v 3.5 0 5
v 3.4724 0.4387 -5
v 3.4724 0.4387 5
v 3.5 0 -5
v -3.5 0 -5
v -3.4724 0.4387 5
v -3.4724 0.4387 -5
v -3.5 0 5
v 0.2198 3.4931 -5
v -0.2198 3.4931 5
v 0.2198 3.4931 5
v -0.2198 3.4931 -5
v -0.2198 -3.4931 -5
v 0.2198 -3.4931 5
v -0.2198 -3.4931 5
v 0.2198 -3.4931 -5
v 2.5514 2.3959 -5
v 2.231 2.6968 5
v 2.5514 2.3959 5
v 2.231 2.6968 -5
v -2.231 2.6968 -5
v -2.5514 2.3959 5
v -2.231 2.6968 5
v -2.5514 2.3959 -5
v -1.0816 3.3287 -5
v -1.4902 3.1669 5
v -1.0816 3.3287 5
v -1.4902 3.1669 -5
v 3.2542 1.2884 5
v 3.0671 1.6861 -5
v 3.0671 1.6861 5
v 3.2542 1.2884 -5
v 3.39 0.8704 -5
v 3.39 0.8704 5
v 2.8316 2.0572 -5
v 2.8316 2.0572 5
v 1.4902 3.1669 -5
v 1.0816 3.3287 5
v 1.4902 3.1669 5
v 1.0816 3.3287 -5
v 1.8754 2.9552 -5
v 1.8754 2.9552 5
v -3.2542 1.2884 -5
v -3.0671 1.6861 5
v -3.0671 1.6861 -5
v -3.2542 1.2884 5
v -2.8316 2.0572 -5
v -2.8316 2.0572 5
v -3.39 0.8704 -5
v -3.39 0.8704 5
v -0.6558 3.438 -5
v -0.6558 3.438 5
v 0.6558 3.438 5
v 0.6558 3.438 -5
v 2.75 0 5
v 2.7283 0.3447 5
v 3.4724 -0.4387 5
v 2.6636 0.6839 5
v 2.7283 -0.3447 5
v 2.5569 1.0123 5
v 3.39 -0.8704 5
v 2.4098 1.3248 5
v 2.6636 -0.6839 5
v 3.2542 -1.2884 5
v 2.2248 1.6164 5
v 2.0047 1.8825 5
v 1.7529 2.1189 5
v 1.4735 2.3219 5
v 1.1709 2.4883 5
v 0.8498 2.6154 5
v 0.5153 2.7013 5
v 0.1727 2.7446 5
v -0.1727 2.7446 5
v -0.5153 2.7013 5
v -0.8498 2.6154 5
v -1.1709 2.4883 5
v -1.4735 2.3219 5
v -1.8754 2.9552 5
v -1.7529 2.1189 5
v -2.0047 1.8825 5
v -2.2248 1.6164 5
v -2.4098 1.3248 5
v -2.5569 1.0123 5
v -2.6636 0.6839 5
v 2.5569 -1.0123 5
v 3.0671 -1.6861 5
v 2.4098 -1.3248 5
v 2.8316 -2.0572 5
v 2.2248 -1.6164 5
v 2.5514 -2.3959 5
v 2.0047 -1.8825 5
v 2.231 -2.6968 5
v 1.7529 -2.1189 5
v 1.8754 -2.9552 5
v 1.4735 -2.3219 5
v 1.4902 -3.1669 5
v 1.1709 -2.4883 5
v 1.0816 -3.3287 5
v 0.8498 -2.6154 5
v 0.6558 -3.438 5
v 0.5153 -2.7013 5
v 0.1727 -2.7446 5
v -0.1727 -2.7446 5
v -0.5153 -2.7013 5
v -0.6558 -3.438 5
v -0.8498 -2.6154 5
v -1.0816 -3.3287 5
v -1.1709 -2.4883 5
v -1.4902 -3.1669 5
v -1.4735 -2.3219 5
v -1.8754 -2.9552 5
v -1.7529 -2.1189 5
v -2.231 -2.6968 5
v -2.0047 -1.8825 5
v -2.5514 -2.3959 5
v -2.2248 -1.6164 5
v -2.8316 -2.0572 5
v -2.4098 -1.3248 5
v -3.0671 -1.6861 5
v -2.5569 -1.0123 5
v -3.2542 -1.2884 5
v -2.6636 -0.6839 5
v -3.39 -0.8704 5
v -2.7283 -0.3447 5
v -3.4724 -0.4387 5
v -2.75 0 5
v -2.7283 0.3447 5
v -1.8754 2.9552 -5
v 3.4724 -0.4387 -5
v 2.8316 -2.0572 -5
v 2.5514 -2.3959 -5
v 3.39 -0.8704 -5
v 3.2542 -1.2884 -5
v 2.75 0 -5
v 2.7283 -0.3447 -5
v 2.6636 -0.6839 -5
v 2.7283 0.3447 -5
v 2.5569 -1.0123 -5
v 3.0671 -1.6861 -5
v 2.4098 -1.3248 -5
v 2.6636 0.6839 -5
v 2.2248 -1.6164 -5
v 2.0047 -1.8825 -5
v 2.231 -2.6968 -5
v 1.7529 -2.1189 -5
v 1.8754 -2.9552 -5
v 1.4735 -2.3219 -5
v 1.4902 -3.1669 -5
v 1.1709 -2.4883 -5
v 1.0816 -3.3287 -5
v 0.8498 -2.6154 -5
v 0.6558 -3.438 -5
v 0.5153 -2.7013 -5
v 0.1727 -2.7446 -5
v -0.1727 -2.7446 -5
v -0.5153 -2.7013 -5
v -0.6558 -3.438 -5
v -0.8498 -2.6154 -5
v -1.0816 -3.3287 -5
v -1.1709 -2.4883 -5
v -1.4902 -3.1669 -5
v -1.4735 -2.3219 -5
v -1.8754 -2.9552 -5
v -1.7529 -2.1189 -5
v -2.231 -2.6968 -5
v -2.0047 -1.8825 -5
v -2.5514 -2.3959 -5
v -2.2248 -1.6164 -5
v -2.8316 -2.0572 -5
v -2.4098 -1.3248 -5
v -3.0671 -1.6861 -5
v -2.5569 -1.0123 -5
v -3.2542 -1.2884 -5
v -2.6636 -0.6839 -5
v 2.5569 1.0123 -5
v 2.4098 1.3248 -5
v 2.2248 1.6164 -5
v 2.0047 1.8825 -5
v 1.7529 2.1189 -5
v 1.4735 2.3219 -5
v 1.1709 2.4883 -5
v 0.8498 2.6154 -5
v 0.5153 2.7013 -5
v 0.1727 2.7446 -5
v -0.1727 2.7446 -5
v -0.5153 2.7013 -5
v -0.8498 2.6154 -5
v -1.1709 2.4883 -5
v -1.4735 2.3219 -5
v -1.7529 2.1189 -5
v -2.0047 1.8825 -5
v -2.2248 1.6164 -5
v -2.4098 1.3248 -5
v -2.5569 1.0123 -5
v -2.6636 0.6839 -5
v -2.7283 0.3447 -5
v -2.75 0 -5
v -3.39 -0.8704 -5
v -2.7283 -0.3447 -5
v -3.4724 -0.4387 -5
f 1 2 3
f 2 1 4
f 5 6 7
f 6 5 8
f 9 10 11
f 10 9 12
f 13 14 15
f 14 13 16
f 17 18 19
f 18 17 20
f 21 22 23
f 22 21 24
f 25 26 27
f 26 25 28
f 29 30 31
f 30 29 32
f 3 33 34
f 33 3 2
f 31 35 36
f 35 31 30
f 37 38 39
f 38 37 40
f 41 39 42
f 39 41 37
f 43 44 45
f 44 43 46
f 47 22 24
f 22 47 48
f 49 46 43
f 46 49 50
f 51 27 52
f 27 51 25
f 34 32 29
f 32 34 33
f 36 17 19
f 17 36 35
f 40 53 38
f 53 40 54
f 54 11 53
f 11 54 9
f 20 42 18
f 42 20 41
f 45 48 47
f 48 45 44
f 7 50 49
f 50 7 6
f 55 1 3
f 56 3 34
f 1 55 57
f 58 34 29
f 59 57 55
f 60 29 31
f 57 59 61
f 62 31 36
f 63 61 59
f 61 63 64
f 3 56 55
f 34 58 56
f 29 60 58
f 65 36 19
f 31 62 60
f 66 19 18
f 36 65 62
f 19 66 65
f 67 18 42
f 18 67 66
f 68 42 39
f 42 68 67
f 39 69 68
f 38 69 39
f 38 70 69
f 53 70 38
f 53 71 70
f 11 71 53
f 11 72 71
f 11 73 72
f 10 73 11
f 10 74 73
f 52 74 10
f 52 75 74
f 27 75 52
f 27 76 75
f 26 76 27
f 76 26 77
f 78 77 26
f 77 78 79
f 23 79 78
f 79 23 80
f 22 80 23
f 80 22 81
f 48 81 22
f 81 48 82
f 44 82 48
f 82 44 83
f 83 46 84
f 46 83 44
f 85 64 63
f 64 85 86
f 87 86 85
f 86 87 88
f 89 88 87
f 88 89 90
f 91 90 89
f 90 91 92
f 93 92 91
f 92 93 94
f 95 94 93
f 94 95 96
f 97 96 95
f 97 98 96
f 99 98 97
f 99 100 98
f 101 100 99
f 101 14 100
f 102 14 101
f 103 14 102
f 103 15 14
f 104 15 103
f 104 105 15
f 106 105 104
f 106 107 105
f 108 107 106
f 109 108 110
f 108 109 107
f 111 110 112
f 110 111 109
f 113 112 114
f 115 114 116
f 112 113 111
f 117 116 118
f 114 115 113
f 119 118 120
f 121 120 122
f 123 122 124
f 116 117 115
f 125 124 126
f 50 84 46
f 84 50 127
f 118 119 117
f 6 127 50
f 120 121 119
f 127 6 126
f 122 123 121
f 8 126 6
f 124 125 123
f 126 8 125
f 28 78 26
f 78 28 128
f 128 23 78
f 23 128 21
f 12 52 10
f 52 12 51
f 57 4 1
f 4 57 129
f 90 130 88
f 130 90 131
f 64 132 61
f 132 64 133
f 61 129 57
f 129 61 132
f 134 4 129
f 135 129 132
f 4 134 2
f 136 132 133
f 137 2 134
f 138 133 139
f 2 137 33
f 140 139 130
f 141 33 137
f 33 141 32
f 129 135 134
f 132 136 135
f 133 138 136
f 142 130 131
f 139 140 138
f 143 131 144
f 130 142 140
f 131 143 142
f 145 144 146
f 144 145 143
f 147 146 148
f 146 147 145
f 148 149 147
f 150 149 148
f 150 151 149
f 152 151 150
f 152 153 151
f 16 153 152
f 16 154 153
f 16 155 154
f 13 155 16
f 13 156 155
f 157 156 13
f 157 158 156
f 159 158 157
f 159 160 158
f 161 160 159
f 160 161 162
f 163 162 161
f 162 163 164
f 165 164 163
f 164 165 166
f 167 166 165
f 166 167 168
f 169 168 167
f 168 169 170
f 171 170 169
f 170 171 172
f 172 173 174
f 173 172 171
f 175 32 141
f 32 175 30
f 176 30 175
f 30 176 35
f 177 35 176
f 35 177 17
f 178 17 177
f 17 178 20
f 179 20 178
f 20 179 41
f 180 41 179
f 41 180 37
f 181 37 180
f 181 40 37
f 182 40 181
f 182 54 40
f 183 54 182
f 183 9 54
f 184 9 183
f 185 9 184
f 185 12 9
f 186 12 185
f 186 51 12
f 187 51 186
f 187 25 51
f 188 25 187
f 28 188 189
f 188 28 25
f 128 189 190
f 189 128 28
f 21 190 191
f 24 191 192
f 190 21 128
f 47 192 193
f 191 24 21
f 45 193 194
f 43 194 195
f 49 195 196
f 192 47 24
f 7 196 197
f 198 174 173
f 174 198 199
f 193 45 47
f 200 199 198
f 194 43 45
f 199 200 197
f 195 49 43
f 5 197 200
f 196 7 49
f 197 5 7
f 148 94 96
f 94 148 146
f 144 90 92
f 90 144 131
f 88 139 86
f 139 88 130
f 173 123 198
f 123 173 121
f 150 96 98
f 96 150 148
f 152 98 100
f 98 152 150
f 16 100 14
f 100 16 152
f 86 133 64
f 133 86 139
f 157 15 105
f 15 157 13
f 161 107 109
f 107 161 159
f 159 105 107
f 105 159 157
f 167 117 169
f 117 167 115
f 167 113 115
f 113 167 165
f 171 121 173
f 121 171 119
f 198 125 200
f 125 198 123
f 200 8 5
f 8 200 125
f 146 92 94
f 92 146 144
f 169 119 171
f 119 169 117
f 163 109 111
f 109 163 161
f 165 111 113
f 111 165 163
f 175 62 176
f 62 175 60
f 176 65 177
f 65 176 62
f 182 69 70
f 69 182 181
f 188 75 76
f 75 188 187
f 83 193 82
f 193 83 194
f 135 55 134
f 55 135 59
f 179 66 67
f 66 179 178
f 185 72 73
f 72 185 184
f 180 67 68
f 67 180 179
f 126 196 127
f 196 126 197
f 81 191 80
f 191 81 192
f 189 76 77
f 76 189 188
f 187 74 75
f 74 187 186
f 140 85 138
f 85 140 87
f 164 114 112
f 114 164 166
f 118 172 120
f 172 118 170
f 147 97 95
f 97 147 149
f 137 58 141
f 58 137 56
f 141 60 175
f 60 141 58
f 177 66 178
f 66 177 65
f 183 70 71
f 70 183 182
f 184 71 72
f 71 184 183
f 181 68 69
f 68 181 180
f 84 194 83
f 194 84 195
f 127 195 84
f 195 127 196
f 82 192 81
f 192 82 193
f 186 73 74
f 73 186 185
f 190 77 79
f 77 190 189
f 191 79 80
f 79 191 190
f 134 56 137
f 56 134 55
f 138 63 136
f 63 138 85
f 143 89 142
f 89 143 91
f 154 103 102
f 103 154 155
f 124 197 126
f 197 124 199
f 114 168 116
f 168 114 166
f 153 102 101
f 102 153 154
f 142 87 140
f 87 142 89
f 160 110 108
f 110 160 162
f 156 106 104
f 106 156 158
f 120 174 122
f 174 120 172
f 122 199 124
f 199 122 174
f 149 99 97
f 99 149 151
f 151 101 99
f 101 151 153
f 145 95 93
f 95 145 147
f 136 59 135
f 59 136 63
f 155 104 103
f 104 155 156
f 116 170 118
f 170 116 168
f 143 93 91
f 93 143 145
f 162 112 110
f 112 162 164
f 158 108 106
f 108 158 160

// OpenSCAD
$fn = 50;


difference() {
	union() {
		translate(v = [0, 0, -5.0000000000]) {
			cylinder(h = 10, r = 3.5000000000);
		}
	}
	union() {
		translate(v = [0, 0, -100.0000000000]) {
			cylinder(h = 200, r = 2.7500000000);
		}
	}
}
